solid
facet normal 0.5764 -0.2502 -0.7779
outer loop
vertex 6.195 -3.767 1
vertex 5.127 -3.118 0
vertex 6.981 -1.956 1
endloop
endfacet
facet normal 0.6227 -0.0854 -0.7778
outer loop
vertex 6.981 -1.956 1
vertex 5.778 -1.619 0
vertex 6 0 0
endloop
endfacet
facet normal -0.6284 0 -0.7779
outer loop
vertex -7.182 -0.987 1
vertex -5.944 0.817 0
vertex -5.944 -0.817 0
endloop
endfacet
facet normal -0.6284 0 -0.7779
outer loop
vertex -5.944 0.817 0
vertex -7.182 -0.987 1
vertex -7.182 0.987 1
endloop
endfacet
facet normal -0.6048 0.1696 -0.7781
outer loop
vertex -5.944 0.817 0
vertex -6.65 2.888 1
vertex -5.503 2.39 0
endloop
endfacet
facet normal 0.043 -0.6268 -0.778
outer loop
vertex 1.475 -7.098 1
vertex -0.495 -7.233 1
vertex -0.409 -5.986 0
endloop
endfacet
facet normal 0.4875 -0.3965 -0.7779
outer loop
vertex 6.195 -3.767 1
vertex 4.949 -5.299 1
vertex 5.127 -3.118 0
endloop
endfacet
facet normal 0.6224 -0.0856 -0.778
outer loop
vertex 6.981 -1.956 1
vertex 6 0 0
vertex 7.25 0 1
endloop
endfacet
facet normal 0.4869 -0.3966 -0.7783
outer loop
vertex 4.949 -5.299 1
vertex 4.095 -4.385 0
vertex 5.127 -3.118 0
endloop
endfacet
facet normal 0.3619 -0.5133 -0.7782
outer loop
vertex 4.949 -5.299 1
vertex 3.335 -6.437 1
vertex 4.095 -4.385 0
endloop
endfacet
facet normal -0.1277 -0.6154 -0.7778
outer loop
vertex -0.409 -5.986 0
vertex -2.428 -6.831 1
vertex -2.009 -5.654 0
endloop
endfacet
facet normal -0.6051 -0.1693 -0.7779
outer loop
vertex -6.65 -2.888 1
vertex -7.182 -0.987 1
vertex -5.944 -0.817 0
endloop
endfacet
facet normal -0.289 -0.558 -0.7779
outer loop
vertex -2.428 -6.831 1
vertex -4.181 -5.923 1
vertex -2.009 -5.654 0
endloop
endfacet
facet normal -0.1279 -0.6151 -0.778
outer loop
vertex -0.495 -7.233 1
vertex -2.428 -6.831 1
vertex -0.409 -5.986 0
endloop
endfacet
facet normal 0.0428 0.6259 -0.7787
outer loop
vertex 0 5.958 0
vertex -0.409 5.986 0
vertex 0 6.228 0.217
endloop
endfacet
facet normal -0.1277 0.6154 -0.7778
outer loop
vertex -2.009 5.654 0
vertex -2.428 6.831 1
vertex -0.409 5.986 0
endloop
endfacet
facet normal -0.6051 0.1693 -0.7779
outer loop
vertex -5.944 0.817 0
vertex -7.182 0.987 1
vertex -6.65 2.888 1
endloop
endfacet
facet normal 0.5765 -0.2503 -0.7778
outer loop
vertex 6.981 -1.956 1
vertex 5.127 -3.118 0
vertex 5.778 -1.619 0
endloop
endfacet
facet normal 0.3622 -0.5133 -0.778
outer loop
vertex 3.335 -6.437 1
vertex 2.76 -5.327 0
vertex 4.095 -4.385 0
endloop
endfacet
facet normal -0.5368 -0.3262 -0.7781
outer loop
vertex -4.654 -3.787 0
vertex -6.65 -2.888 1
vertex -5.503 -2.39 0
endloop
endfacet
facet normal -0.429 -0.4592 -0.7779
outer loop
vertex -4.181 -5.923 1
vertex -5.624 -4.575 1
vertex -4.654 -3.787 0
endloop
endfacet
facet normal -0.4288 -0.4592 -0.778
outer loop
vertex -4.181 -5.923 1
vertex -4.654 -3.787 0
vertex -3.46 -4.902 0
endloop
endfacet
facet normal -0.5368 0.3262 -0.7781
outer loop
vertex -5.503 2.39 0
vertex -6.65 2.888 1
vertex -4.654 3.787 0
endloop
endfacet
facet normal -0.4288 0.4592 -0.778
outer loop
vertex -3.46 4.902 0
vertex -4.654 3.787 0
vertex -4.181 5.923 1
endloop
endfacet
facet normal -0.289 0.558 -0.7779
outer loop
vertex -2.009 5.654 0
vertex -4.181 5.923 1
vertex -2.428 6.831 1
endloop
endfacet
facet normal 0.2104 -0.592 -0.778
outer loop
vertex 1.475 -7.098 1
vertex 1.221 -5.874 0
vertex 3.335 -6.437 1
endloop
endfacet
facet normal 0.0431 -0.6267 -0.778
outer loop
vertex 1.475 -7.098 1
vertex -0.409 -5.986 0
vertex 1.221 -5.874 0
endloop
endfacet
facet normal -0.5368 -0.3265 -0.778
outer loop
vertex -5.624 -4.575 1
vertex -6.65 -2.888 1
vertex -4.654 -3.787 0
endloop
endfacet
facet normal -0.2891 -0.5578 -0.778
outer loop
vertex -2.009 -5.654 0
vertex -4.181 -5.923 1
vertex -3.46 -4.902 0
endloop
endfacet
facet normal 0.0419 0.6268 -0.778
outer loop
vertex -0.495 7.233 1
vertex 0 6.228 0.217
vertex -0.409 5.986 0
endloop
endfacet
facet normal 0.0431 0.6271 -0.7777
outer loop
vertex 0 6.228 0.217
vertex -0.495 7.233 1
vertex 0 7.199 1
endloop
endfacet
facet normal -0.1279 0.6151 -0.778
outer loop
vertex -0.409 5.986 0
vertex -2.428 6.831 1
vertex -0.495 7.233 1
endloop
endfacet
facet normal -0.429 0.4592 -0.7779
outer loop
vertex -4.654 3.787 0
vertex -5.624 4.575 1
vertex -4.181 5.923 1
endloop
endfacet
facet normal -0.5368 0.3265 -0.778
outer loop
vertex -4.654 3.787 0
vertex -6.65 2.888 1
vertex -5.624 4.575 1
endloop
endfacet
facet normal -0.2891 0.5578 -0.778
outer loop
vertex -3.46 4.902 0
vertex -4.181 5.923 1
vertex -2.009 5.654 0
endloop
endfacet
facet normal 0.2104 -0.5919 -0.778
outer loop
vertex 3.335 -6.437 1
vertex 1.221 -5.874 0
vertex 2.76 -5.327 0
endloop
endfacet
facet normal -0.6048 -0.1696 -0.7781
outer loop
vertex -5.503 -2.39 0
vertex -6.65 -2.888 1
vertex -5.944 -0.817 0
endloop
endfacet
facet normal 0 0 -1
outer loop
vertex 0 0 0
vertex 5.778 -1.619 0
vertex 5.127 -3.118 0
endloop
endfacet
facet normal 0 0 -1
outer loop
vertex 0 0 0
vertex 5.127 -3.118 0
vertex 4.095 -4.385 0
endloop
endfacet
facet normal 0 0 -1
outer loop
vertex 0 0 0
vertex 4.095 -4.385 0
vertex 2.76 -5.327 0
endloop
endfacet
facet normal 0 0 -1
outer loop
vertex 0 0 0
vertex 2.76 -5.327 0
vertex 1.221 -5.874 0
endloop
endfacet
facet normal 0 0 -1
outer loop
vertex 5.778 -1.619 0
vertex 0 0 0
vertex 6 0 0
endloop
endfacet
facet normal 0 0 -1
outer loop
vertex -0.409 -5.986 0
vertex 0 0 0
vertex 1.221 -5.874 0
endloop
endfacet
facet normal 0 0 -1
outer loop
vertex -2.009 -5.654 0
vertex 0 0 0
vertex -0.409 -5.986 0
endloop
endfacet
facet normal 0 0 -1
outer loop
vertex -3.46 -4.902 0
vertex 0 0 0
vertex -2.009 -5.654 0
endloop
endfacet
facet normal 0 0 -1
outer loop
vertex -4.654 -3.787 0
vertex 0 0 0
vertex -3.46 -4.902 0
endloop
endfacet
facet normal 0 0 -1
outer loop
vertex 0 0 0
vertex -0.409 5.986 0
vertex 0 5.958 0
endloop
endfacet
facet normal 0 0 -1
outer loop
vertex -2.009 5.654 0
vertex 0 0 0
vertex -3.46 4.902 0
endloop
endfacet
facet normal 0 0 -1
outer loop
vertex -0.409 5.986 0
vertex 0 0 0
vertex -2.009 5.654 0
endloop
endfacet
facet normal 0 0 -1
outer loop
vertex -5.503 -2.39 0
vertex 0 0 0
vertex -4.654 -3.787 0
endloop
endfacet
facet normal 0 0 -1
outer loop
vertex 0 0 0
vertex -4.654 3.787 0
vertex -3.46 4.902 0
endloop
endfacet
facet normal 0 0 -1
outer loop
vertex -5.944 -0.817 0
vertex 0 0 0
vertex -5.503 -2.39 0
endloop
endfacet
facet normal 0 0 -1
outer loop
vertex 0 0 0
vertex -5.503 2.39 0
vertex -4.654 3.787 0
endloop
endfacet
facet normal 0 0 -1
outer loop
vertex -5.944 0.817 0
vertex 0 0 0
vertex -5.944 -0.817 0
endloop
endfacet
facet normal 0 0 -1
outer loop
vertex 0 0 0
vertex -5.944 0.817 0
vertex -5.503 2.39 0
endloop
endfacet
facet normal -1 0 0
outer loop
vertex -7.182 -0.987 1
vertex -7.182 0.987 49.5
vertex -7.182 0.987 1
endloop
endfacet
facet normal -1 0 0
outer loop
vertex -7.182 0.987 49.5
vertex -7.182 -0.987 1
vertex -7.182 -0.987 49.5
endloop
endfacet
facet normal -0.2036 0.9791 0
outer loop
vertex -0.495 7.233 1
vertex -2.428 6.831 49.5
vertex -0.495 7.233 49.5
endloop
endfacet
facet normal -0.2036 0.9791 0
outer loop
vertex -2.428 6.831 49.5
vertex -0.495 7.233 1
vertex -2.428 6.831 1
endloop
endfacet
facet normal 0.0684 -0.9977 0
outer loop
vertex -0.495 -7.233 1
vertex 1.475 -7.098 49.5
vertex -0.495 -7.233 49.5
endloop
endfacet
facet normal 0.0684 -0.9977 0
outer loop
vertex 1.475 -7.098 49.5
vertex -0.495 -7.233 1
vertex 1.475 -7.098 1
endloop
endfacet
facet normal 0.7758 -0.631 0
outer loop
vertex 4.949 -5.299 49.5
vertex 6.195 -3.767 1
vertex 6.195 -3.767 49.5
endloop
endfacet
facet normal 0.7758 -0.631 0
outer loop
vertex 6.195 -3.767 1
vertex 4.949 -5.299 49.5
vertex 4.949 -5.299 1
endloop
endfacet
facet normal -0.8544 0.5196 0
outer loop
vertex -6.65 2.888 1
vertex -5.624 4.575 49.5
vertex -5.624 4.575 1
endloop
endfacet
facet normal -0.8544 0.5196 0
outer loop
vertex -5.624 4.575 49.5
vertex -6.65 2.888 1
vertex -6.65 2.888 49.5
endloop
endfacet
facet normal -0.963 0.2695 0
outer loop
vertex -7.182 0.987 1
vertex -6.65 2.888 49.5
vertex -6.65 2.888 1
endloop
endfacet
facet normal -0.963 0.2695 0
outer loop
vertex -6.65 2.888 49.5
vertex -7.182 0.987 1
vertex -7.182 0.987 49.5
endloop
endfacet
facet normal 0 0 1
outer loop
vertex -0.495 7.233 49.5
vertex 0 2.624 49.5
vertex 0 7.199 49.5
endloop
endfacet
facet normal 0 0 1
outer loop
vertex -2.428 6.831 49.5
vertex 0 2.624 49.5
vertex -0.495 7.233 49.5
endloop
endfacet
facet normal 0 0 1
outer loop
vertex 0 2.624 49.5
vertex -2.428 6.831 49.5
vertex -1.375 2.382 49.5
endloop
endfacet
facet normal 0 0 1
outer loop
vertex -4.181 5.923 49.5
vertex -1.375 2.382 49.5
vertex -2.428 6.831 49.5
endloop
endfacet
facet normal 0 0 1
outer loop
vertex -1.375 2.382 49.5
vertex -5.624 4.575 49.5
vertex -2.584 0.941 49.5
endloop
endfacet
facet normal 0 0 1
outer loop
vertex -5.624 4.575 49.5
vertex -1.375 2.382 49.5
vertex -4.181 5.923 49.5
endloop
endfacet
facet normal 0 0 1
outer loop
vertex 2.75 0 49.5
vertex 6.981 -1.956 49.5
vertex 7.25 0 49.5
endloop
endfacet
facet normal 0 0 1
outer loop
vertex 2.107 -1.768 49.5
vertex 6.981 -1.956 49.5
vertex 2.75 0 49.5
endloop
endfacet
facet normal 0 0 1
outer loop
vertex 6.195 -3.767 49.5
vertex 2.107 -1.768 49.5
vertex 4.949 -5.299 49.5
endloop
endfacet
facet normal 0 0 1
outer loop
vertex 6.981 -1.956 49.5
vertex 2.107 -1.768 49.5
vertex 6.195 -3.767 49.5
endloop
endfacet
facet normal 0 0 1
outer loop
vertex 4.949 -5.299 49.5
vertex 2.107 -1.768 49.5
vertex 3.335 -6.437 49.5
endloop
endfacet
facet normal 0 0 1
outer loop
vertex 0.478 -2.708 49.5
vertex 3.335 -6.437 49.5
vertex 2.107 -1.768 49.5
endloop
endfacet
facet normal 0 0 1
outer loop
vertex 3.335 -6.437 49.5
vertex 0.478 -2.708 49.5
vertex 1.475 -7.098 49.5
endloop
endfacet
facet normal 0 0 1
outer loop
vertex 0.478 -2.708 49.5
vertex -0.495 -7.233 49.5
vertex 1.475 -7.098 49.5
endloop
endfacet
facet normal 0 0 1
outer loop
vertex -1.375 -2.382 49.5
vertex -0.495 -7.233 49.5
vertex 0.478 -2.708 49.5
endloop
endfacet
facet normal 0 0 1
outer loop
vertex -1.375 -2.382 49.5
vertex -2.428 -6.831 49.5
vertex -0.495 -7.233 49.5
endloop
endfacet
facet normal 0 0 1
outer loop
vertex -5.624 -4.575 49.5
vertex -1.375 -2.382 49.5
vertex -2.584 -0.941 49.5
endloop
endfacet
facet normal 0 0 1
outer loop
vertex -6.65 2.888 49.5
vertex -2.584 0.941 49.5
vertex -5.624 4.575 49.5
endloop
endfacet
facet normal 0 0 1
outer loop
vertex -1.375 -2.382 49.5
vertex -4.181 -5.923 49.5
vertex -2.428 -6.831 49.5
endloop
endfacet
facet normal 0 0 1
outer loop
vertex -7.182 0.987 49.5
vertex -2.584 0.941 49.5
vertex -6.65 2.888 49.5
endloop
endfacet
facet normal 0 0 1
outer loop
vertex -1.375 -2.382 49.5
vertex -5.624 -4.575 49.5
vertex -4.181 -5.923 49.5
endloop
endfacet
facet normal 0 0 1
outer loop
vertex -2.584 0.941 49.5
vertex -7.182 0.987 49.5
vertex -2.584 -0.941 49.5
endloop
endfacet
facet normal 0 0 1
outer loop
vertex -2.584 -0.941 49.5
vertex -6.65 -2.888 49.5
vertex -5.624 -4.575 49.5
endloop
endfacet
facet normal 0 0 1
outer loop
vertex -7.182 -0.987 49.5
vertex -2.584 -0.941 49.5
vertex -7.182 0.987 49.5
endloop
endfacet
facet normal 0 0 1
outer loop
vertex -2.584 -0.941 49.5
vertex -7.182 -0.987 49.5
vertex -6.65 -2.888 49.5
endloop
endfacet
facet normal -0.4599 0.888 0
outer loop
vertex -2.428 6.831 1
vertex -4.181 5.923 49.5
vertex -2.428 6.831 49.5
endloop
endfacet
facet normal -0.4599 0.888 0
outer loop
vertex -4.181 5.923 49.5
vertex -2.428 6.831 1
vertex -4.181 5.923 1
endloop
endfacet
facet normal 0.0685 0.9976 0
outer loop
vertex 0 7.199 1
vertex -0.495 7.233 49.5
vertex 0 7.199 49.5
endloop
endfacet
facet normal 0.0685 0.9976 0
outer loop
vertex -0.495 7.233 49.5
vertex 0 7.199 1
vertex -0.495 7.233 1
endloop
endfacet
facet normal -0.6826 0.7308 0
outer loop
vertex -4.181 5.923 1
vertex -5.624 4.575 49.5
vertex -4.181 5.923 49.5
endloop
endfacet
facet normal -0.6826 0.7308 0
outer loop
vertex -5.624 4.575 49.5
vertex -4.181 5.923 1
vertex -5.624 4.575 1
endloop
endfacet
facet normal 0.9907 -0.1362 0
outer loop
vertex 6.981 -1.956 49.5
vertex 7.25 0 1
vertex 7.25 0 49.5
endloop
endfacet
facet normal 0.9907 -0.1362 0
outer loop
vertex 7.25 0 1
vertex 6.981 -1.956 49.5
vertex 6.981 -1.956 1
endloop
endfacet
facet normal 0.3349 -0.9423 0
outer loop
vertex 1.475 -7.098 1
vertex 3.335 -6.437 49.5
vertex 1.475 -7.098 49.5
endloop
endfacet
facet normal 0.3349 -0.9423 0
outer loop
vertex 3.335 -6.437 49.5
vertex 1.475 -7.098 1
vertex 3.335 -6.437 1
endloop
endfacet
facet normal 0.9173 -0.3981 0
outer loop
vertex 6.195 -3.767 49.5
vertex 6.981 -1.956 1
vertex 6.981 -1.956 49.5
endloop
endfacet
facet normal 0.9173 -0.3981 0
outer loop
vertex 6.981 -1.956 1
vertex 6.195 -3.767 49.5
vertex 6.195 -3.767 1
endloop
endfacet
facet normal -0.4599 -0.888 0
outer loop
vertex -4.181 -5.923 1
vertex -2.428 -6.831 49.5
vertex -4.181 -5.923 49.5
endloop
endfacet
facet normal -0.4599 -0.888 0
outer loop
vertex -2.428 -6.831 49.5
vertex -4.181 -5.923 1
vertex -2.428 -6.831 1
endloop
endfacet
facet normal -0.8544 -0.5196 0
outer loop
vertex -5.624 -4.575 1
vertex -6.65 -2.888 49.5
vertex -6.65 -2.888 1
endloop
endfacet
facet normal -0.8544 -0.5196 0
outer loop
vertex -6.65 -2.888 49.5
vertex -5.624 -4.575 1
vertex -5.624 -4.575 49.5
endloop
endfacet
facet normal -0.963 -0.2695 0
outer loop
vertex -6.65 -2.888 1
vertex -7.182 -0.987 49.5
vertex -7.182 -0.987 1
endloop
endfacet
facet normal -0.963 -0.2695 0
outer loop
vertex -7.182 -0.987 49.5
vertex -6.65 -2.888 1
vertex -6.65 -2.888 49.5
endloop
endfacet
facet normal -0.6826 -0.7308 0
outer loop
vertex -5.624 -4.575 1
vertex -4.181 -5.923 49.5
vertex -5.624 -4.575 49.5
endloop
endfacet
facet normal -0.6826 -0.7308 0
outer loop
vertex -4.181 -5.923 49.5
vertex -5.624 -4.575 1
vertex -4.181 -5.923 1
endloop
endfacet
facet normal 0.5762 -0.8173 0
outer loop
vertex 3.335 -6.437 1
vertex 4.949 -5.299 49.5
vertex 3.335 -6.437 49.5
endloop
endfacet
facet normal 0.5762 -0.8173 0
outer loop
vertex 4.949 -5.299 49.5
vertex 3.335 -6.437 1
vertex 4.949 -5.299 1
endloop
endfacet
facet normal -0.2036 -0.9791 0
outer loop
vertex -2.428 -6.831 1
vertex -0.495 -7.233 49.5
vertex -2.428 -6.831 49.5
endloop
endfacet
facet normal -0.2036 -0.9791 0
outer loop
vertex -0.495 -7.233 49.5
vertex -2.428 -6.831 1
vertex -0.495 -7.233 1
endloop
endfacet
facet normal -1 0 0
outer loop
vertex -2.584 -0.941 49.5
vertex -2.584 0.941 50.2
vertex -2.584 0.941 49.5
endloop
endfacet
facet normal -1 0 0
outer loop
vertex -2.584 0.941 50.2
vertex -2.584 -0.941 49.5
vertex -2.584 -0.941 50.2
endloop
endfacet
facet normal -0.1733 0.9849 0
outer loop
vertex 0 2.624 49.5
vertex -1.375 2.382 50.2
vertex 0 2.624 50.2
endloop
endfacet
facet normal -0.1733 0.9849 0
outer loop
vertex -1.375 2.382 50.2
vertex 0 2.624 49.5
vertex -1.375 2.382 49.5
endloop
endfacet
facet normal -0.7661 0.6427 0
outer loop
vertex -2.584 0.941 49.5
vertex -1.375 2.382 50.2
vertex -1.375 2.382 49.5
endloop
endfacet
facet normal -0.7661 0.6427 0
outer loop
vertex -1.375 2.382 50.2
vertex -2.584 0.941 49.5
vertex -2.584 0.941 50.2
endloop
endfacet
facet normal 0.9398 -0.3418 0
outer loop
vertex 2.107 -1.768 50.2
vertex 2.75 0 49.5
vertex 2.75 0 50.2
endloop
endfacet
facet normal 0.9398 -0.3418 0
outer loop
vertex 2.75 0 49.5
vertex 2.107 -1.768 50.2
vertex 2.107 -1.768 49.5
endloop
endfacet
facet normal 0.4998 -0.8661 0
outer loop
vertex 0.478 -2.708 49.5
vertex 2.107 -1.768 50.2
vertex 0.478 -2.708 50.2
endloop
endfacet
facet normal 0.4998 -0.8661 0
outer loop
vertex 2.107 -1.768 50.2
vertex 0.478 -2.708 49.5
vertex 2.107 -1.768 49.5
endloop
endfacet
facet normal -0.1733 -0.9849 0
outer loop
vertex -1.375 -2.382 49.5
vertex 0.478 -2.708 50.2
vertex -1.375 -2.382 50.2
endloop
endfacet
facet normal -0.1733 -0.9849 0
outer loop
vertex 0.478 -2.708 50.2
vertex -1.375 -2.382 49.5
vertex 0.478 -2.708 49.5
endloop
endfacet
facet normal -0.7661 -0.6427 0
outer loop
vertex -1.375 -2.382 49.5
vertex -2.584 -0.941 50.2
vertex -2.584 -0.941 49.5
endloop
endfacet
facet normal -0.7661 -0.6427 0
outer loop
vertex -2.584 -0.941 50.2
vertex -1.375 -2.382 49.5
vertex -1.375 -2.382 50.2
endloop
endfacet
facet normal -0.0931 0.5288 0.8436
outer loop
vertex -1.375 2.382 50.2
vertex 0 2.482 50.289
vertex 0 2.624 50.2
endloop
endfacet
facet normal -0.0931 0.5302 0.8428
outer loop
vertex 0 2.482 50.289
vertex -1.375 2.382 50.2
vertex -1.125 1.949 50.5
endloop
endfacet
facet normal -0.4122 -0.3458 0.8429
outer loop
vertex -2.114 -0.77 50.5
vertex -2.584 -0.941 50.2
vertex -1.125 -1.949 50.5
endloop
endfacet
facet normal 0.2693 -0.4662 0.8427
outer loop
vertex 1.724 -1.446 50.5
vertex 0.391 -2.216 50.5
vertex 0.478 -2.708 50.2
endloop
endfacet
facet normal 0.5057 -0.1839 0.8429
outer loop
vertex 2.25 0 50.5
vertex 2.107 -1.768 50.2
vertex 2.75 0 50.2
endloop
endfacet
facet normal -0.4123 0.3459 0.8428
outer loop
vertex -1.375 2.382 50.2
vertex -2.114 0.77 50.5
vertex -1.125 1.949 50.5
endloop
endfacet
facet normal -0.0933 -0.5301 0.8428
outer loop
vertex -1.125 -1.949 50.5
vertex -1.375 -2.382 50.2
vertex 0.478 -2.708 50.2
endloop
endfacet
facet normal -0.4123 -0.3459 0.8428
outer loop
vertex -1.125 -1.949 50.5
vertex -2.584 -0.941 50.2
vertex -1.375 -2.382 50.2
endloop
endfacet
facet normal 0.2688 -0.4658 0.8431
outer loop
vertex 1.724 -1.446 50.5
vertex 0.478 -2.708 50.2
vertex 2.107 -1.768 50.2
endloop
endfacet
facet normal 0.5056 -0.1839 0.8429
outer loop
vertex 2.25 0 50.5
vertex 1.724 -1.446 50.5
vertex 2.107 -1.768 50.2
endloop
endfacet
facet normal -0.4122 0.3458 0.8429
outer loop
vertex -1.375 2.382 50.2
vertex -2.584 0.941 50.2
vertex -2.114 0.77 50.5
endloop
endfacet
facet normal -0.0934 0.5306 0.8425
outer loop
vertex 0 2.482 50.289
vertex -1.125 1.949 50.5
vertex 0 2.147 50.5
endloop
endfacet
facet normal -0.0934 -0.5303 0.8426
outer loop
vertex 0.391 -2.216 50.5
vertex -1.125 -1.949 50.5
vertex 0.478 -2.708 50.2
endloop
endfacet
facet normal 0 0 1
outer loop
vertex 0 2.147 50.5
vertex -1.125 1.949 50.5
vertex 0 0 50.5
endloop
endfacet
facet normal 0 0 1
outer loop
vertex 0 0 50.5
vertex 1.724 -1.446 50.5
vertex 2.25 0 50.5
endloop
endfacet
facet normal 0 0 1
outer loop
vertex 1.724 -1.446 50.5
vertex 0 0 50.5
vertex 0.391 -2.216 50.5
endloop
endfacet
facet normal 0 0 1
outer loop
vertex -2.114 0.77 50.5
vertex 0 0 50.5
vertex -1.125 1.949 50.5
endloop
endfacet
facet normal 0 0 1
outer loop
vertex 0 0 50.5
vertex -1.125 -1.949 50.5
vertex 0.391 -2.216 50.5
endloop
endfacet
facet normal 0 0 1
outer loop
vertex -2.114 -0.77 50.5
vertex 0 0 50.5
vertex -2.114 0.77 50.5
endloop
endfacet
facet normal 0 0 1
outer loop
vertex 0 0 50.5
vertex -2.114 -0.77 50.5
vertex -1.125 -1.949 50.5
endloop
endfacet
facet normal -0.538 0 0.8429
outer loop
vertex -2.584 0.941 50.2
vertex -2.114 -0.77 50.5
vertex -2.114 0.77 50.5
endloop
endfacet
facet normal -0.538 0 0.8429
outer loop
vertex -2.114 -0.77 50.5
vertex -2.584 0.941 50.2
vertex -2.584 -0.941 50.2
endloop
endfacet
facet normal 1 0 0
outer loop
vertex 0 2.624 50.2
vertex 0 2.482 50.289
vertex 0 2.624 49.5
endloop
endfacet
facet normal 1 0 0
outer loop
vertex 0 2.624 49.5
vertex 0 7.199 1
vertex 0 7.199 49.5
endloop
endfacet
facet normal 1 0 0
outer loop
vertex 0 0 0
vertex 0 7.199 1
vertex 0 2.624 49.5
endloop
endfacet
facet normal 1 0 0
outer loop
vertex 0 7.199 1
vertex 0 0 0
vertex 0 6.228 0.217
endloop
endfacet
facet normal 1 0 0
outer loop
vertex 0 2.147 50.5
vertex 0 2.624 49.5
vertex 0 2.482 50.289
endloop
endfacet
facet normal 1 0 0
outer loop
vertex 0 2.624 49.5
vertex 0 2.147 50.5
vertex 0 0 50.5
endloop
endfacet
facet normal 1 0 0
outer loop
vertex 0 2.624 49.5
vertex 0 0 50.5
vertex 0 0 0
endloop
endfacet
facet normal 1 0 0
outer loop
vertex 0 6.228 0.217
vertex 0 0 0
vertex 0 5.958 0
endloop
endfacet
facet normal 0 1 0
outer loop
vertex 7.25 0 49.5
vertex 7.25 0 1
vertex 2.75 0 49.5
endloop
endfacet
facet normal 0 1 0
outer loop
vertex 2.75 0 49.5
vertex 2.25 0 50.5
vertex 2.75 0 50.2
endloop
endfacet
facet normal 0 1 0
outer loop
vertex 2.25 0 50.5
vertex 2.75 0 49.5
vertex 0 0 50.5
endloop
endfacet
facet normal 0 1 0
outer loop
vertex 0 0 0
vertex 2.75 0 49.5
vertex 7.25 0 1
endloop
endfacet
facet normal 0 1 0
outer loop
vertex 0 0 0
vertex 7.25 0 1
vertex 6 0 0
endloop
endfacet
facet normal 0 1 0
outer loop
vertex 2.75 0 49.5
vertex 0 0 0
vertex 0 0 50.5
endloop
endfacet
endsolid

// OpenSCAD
//AA Connector Battery
difference() {
    union() {
        cylinder(d2=14.5,d1=12);
        translate([0,0,1])cylinder(d=14.5,h=48.5);
        translate([0,0,49.5])cylinder(d=5.5,h=0.7);
        translate([0,0,50.2])cylinder(d1=5.5,d2=4.5,h=0.3);
    }
    cube([10,10,55]);
}
